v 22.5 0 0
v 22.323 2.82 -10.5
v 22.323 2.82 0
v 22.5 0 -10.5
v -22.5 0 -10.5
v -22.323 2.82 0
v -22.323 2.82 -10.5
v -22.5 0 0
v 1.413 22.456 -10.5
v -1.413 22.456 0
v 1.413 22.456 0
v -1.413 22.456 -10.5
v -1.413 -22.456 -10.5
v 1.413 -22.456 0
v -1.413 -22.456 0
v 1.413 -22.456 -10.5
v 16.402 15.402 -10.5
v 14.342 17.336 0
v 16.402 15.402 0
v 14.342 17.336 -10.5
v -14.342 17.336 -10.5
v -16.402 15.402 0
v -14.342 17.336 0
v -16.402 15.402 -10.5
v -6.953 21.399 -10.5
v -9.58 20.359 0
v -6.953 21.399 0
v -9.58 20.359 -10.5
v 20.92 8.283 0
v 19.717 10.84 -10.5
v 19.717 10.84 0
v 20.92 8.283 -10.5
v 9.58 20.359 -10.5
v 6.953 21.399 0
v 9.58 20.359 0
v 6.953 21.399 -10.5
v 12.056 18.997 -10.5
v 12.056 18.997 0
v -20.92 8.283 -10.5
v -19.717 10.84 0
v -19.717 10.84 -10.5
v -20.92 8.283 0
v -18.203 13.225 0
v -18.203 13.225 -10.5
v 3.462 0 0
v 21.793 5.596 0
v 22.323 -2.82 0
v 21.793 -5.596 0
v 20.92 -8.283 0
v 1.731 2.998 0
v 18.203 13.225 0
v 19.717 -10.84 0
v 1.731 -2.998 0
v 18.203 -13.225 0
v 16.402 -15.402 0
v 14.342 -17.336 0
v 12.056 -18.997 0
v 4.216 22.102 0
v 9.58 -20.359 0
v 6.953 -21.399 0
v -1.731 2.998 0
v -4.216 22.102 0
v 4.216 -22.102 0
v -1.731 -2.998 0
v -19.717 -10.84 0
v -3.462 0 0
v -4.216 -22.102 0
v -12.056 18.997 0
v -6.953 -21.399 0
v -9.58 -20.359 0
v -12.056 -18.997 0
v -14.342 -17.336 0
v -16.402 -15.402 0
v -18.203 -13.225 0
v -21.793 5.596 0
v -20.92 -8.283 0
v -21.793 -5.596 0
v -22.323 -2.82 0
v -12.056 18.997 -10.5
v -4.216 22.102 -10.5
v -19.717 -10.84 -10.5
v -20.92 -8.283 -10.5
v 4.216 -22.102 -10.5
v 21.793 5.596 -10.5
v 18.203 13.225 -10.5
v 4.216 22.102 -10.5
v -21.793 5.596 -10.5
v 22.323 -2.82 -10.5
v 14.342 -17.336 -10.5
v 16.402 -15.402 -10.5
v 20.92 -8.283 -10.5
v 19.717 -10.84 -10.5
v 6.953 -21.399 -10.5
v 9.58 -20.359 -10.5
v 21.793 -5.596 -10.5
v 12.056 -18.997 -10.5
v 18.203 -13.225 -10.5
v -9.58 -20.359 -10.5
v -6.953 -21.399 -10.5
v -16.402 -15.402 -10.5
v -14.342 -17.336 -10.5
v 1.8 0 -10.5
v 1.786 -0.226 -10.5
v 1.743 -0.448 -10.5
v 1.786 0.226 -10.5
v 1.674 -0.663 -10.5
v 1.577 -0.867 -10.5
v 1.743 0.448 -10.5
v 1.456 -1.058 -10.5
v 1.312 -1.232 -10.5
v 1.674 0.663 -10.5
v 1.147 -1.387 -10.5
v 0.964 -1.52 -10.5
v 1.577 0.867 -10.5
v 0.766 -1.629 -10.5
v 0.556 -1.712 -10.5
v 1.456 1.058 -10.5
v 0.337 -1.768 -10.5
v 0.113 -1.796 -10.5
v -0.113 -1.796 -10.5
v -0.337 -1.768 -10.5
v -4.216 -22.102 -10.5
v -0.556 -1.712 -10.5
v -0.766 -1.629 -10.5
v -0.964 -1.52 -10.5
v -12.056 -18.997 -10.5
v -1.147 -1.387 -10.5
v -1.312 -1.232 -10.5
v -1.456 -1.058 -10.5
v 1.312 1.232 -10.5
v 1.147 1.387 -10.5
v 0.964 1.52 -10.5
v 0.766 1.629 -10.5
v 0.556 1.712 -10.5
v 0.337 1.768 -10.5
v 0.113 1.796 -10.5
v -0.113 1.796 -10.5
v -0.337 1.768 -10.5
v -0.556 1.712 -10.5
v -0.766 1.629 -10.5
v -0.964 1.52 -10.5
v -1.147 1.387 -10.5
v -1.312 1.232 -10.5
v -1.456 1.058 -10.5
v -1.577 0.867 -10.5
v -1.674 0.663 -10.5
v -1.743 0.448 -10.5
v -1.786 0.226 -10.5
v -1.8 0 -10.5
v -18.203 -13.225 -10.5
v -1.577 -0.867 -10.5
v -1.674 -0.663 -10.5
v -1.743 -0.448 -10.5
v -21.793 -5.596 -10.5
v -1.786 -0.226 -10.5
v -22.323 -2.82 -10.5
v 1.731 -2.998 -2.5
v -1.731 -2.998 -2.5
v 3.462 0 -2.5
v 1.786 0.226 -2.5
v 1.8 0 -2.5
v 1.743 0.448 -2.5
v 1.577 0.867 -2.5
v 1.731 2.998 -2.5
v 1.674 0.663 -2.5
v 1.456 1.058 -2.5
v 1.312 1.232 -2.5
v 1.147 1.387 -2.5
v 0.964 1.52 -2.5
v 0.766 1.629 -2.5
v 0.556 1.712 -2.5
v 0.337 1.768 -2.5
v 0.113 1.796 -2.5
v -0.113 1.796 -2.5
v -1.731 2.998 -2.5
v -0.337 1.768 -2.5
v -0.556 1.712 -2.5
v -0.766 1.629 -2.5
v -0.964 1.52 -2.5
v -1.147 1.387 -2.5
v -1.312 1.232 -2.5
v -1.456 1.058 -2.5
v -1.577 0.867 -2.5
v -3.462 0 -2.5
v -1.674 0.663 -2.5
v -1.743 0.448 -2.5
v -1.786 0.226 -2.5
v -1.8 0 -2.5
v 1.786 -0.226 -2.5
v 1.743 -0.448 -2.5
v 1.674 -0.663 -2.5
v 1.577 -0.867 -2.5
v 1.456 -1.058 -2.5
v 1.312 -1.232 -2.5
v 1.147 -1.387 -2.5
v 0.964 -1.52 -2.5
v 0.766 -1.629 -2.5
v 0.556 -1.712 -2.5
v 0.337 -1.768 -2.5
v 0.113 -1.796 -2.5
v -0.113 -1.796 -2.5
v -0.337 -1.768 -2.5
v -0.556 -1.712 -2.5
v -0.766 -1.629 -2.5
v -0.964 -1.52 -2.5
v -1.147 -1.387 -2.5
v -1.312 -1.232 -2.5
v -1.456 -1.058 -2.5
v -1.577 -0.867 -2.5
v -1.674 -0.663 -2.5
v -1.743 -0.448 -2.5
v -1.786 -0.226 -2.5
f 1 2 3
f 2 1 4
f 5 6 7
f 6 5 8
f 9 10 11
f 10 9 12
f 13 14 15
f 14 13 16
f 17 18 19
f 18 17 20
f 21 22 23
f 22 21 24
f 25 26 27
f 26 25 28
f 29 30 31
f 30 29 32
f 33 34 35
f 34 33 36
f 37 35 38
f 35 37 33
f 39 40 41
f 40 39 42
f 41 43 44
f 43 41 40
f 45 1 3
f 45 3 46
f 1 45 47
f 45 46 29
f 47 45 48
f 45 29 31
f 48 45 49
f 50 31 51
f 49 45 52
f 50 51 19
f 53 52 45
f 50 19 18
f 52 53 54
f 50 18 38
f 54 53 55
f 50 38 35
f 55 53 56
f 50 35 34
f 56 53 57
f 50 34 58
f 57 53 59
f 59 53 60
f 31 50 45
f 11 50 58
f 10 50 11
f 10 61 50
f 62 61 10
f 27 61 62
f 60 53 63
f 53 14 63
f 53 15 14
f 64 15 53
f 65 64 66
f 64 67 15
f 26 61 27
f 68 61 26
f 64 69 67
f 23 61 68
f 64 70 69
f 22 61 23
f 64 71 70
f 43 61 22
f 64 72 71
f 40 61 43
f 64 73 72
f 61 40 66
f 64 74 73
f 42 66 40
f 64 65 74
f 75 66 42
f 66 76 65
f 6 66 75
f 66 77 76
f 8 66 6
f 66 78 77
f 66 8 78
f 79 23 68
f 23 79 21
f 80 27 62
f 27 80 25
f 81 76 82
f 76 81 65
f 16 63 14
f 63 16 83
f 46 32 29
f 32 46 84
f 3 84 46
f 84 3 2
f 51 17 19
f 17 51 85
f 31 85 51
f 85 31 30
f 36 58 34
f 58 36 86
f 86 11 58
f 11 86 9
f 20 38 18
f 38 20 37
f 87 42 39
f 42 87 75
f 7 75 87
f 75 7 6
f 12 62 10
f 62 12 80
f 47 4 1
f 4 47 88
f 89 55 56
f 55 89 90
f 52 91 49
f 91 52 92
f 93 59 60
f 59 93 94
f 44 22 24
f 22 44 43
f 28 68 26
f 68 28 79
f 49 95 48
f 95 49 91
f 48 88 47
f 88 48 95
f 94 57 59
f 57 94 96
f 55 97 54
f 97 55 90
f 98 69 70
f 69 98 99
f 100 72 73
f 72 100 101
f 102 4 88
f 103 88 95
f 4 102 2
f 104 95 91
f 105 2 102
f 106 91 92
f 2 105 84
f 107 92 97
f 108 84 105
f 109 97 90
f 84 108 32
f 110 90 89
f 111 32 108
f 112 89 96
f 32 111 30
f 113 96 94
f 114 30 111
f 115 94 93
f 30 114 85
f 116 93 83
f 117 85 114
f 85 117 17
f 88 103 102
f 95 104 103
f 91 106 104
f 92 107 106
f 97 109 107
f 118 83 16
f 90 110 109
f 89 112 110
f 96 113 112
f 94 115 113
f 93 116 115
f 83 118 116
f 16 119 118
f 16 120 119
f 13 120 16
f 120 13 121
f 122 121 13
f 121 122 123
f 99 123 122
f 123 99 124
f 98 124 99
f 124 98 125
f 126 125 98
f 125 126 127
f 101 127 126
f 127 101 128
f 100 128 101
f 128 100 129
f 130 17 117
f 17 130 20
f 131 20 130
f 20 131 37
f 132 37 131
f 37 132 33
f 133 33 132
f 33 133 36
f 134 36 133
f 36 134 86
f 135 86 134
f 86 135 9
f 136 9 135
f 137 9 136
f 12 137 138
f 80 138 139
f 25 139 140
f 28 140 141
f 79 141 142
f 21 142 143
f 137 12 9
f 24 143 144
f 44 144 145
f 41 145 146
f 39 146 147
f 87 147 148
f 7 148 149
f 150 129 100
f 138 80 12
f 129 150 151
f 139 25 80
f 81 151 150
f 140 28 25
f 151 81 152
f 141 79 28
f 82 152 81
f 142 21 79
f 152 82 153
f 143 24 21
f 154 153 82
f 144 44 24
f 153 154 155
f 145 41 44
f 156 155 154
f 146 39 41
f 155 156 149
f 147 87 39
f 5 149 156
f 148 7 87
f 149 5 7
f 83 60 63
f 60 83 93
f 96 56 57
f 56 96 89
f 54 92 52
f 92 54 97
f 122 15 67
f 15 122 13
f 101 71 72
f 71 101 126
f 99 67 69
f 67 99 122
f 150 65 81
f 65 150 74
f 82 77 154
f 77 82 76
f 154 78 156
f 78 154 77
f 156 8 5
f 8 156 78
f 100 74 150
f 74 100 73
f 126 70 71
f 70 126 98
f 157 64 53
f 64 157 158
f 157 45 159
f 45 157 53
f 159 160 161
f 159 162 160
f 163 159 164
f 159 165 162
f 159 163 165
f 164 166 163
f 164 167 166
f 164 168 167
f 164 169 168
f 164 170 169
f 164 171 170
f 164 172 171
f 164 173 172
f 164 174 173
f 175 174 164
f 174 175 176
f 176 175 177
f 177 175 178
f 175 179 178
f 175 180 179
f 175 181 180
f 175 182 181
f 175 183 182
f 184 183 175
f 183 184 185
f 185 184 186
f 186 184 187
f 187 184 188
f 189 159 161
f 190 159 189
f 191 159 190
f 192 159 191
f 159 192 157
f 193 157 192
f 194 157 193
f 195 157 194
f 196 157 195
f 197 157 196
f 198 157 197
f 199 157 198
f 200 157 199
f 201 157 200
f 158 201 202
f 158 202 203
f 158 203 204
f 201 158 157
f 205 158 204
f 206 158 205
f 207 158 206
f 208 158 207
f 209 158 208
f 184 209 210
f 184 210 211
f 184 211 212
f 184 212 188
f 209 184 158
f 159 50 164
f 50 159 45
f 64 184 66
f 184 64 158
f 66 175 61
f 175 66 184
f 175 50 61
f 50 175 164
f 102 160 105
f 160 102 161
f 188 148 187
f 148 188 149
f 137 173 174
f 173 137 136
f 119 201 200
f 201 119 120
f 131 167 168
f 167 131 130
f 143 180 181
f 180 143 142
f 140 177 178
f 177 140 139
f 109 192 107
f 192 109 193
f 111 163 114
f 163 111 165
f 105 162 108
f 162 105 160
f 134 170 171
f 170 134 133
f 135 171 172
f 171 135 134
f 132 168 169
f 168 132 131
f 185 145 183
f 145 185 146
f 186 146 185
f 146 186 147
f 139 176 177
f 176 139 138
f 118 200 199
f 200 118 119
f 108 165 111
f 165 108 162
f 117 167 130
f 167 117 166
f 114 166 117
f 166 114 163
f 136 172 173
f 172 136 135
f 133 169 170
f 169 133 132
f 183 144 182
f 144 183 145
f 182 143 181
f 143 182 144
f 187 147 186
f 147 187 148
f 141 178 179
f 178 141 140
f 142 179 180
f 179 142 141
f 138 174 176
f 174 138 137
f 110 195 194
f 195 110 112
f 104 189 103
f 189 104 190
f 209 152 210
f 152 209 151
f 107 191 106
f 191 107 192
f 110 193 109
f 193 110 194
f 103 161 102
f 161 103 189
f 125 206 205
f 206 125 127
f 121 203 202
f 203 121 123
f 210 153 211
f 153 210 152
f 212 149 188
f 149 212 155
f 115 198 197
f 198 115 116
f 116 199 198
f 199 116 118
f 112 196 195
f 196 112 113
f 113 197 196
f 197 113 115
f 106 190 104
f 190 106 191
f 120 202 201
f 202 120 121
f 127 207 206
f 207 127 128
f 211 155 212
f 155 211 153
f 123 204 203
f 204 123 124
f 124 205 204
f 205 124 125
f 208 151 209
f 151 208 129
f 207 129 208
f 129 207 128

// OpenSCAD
$fn = 50;


difference() {
	union() {
		translate(v = [0, 0, -10.5000000000]) {
			cylinder(h = 10.5000000000, r = 22.5000000000);
		}
		translate(v = [0, 0, -9.0000000000]) {
			cylinder(h = 9, r = 2.8750000000);
		}
	}
	union() {
		translate(v = [0, 0, 0]) {
			rotate(a = [0, 0, 0]) {
				difference() {
					union() {
						translate(v = [0, 0, -2.5000000000]) {
							linear_extrude(height = 2.5000000000) {
								polygon(points = [[3.4620000000, 0.0000000000], [1.7310000000, 2.9981799479], [-1.7310000000, 2.9981799479], [-3.4620000000, 0.0000000000], [-1.7310000000, -2.9981799479], [1.7310000000, -2.9981799479]]);
							}
						}
					}
					union();
				}
			}
		}
		#translate(v = [0, 0, -100.0000000000]) {
			cylinder(h = 200, r = 1.8000000000);
		}
	}
}
